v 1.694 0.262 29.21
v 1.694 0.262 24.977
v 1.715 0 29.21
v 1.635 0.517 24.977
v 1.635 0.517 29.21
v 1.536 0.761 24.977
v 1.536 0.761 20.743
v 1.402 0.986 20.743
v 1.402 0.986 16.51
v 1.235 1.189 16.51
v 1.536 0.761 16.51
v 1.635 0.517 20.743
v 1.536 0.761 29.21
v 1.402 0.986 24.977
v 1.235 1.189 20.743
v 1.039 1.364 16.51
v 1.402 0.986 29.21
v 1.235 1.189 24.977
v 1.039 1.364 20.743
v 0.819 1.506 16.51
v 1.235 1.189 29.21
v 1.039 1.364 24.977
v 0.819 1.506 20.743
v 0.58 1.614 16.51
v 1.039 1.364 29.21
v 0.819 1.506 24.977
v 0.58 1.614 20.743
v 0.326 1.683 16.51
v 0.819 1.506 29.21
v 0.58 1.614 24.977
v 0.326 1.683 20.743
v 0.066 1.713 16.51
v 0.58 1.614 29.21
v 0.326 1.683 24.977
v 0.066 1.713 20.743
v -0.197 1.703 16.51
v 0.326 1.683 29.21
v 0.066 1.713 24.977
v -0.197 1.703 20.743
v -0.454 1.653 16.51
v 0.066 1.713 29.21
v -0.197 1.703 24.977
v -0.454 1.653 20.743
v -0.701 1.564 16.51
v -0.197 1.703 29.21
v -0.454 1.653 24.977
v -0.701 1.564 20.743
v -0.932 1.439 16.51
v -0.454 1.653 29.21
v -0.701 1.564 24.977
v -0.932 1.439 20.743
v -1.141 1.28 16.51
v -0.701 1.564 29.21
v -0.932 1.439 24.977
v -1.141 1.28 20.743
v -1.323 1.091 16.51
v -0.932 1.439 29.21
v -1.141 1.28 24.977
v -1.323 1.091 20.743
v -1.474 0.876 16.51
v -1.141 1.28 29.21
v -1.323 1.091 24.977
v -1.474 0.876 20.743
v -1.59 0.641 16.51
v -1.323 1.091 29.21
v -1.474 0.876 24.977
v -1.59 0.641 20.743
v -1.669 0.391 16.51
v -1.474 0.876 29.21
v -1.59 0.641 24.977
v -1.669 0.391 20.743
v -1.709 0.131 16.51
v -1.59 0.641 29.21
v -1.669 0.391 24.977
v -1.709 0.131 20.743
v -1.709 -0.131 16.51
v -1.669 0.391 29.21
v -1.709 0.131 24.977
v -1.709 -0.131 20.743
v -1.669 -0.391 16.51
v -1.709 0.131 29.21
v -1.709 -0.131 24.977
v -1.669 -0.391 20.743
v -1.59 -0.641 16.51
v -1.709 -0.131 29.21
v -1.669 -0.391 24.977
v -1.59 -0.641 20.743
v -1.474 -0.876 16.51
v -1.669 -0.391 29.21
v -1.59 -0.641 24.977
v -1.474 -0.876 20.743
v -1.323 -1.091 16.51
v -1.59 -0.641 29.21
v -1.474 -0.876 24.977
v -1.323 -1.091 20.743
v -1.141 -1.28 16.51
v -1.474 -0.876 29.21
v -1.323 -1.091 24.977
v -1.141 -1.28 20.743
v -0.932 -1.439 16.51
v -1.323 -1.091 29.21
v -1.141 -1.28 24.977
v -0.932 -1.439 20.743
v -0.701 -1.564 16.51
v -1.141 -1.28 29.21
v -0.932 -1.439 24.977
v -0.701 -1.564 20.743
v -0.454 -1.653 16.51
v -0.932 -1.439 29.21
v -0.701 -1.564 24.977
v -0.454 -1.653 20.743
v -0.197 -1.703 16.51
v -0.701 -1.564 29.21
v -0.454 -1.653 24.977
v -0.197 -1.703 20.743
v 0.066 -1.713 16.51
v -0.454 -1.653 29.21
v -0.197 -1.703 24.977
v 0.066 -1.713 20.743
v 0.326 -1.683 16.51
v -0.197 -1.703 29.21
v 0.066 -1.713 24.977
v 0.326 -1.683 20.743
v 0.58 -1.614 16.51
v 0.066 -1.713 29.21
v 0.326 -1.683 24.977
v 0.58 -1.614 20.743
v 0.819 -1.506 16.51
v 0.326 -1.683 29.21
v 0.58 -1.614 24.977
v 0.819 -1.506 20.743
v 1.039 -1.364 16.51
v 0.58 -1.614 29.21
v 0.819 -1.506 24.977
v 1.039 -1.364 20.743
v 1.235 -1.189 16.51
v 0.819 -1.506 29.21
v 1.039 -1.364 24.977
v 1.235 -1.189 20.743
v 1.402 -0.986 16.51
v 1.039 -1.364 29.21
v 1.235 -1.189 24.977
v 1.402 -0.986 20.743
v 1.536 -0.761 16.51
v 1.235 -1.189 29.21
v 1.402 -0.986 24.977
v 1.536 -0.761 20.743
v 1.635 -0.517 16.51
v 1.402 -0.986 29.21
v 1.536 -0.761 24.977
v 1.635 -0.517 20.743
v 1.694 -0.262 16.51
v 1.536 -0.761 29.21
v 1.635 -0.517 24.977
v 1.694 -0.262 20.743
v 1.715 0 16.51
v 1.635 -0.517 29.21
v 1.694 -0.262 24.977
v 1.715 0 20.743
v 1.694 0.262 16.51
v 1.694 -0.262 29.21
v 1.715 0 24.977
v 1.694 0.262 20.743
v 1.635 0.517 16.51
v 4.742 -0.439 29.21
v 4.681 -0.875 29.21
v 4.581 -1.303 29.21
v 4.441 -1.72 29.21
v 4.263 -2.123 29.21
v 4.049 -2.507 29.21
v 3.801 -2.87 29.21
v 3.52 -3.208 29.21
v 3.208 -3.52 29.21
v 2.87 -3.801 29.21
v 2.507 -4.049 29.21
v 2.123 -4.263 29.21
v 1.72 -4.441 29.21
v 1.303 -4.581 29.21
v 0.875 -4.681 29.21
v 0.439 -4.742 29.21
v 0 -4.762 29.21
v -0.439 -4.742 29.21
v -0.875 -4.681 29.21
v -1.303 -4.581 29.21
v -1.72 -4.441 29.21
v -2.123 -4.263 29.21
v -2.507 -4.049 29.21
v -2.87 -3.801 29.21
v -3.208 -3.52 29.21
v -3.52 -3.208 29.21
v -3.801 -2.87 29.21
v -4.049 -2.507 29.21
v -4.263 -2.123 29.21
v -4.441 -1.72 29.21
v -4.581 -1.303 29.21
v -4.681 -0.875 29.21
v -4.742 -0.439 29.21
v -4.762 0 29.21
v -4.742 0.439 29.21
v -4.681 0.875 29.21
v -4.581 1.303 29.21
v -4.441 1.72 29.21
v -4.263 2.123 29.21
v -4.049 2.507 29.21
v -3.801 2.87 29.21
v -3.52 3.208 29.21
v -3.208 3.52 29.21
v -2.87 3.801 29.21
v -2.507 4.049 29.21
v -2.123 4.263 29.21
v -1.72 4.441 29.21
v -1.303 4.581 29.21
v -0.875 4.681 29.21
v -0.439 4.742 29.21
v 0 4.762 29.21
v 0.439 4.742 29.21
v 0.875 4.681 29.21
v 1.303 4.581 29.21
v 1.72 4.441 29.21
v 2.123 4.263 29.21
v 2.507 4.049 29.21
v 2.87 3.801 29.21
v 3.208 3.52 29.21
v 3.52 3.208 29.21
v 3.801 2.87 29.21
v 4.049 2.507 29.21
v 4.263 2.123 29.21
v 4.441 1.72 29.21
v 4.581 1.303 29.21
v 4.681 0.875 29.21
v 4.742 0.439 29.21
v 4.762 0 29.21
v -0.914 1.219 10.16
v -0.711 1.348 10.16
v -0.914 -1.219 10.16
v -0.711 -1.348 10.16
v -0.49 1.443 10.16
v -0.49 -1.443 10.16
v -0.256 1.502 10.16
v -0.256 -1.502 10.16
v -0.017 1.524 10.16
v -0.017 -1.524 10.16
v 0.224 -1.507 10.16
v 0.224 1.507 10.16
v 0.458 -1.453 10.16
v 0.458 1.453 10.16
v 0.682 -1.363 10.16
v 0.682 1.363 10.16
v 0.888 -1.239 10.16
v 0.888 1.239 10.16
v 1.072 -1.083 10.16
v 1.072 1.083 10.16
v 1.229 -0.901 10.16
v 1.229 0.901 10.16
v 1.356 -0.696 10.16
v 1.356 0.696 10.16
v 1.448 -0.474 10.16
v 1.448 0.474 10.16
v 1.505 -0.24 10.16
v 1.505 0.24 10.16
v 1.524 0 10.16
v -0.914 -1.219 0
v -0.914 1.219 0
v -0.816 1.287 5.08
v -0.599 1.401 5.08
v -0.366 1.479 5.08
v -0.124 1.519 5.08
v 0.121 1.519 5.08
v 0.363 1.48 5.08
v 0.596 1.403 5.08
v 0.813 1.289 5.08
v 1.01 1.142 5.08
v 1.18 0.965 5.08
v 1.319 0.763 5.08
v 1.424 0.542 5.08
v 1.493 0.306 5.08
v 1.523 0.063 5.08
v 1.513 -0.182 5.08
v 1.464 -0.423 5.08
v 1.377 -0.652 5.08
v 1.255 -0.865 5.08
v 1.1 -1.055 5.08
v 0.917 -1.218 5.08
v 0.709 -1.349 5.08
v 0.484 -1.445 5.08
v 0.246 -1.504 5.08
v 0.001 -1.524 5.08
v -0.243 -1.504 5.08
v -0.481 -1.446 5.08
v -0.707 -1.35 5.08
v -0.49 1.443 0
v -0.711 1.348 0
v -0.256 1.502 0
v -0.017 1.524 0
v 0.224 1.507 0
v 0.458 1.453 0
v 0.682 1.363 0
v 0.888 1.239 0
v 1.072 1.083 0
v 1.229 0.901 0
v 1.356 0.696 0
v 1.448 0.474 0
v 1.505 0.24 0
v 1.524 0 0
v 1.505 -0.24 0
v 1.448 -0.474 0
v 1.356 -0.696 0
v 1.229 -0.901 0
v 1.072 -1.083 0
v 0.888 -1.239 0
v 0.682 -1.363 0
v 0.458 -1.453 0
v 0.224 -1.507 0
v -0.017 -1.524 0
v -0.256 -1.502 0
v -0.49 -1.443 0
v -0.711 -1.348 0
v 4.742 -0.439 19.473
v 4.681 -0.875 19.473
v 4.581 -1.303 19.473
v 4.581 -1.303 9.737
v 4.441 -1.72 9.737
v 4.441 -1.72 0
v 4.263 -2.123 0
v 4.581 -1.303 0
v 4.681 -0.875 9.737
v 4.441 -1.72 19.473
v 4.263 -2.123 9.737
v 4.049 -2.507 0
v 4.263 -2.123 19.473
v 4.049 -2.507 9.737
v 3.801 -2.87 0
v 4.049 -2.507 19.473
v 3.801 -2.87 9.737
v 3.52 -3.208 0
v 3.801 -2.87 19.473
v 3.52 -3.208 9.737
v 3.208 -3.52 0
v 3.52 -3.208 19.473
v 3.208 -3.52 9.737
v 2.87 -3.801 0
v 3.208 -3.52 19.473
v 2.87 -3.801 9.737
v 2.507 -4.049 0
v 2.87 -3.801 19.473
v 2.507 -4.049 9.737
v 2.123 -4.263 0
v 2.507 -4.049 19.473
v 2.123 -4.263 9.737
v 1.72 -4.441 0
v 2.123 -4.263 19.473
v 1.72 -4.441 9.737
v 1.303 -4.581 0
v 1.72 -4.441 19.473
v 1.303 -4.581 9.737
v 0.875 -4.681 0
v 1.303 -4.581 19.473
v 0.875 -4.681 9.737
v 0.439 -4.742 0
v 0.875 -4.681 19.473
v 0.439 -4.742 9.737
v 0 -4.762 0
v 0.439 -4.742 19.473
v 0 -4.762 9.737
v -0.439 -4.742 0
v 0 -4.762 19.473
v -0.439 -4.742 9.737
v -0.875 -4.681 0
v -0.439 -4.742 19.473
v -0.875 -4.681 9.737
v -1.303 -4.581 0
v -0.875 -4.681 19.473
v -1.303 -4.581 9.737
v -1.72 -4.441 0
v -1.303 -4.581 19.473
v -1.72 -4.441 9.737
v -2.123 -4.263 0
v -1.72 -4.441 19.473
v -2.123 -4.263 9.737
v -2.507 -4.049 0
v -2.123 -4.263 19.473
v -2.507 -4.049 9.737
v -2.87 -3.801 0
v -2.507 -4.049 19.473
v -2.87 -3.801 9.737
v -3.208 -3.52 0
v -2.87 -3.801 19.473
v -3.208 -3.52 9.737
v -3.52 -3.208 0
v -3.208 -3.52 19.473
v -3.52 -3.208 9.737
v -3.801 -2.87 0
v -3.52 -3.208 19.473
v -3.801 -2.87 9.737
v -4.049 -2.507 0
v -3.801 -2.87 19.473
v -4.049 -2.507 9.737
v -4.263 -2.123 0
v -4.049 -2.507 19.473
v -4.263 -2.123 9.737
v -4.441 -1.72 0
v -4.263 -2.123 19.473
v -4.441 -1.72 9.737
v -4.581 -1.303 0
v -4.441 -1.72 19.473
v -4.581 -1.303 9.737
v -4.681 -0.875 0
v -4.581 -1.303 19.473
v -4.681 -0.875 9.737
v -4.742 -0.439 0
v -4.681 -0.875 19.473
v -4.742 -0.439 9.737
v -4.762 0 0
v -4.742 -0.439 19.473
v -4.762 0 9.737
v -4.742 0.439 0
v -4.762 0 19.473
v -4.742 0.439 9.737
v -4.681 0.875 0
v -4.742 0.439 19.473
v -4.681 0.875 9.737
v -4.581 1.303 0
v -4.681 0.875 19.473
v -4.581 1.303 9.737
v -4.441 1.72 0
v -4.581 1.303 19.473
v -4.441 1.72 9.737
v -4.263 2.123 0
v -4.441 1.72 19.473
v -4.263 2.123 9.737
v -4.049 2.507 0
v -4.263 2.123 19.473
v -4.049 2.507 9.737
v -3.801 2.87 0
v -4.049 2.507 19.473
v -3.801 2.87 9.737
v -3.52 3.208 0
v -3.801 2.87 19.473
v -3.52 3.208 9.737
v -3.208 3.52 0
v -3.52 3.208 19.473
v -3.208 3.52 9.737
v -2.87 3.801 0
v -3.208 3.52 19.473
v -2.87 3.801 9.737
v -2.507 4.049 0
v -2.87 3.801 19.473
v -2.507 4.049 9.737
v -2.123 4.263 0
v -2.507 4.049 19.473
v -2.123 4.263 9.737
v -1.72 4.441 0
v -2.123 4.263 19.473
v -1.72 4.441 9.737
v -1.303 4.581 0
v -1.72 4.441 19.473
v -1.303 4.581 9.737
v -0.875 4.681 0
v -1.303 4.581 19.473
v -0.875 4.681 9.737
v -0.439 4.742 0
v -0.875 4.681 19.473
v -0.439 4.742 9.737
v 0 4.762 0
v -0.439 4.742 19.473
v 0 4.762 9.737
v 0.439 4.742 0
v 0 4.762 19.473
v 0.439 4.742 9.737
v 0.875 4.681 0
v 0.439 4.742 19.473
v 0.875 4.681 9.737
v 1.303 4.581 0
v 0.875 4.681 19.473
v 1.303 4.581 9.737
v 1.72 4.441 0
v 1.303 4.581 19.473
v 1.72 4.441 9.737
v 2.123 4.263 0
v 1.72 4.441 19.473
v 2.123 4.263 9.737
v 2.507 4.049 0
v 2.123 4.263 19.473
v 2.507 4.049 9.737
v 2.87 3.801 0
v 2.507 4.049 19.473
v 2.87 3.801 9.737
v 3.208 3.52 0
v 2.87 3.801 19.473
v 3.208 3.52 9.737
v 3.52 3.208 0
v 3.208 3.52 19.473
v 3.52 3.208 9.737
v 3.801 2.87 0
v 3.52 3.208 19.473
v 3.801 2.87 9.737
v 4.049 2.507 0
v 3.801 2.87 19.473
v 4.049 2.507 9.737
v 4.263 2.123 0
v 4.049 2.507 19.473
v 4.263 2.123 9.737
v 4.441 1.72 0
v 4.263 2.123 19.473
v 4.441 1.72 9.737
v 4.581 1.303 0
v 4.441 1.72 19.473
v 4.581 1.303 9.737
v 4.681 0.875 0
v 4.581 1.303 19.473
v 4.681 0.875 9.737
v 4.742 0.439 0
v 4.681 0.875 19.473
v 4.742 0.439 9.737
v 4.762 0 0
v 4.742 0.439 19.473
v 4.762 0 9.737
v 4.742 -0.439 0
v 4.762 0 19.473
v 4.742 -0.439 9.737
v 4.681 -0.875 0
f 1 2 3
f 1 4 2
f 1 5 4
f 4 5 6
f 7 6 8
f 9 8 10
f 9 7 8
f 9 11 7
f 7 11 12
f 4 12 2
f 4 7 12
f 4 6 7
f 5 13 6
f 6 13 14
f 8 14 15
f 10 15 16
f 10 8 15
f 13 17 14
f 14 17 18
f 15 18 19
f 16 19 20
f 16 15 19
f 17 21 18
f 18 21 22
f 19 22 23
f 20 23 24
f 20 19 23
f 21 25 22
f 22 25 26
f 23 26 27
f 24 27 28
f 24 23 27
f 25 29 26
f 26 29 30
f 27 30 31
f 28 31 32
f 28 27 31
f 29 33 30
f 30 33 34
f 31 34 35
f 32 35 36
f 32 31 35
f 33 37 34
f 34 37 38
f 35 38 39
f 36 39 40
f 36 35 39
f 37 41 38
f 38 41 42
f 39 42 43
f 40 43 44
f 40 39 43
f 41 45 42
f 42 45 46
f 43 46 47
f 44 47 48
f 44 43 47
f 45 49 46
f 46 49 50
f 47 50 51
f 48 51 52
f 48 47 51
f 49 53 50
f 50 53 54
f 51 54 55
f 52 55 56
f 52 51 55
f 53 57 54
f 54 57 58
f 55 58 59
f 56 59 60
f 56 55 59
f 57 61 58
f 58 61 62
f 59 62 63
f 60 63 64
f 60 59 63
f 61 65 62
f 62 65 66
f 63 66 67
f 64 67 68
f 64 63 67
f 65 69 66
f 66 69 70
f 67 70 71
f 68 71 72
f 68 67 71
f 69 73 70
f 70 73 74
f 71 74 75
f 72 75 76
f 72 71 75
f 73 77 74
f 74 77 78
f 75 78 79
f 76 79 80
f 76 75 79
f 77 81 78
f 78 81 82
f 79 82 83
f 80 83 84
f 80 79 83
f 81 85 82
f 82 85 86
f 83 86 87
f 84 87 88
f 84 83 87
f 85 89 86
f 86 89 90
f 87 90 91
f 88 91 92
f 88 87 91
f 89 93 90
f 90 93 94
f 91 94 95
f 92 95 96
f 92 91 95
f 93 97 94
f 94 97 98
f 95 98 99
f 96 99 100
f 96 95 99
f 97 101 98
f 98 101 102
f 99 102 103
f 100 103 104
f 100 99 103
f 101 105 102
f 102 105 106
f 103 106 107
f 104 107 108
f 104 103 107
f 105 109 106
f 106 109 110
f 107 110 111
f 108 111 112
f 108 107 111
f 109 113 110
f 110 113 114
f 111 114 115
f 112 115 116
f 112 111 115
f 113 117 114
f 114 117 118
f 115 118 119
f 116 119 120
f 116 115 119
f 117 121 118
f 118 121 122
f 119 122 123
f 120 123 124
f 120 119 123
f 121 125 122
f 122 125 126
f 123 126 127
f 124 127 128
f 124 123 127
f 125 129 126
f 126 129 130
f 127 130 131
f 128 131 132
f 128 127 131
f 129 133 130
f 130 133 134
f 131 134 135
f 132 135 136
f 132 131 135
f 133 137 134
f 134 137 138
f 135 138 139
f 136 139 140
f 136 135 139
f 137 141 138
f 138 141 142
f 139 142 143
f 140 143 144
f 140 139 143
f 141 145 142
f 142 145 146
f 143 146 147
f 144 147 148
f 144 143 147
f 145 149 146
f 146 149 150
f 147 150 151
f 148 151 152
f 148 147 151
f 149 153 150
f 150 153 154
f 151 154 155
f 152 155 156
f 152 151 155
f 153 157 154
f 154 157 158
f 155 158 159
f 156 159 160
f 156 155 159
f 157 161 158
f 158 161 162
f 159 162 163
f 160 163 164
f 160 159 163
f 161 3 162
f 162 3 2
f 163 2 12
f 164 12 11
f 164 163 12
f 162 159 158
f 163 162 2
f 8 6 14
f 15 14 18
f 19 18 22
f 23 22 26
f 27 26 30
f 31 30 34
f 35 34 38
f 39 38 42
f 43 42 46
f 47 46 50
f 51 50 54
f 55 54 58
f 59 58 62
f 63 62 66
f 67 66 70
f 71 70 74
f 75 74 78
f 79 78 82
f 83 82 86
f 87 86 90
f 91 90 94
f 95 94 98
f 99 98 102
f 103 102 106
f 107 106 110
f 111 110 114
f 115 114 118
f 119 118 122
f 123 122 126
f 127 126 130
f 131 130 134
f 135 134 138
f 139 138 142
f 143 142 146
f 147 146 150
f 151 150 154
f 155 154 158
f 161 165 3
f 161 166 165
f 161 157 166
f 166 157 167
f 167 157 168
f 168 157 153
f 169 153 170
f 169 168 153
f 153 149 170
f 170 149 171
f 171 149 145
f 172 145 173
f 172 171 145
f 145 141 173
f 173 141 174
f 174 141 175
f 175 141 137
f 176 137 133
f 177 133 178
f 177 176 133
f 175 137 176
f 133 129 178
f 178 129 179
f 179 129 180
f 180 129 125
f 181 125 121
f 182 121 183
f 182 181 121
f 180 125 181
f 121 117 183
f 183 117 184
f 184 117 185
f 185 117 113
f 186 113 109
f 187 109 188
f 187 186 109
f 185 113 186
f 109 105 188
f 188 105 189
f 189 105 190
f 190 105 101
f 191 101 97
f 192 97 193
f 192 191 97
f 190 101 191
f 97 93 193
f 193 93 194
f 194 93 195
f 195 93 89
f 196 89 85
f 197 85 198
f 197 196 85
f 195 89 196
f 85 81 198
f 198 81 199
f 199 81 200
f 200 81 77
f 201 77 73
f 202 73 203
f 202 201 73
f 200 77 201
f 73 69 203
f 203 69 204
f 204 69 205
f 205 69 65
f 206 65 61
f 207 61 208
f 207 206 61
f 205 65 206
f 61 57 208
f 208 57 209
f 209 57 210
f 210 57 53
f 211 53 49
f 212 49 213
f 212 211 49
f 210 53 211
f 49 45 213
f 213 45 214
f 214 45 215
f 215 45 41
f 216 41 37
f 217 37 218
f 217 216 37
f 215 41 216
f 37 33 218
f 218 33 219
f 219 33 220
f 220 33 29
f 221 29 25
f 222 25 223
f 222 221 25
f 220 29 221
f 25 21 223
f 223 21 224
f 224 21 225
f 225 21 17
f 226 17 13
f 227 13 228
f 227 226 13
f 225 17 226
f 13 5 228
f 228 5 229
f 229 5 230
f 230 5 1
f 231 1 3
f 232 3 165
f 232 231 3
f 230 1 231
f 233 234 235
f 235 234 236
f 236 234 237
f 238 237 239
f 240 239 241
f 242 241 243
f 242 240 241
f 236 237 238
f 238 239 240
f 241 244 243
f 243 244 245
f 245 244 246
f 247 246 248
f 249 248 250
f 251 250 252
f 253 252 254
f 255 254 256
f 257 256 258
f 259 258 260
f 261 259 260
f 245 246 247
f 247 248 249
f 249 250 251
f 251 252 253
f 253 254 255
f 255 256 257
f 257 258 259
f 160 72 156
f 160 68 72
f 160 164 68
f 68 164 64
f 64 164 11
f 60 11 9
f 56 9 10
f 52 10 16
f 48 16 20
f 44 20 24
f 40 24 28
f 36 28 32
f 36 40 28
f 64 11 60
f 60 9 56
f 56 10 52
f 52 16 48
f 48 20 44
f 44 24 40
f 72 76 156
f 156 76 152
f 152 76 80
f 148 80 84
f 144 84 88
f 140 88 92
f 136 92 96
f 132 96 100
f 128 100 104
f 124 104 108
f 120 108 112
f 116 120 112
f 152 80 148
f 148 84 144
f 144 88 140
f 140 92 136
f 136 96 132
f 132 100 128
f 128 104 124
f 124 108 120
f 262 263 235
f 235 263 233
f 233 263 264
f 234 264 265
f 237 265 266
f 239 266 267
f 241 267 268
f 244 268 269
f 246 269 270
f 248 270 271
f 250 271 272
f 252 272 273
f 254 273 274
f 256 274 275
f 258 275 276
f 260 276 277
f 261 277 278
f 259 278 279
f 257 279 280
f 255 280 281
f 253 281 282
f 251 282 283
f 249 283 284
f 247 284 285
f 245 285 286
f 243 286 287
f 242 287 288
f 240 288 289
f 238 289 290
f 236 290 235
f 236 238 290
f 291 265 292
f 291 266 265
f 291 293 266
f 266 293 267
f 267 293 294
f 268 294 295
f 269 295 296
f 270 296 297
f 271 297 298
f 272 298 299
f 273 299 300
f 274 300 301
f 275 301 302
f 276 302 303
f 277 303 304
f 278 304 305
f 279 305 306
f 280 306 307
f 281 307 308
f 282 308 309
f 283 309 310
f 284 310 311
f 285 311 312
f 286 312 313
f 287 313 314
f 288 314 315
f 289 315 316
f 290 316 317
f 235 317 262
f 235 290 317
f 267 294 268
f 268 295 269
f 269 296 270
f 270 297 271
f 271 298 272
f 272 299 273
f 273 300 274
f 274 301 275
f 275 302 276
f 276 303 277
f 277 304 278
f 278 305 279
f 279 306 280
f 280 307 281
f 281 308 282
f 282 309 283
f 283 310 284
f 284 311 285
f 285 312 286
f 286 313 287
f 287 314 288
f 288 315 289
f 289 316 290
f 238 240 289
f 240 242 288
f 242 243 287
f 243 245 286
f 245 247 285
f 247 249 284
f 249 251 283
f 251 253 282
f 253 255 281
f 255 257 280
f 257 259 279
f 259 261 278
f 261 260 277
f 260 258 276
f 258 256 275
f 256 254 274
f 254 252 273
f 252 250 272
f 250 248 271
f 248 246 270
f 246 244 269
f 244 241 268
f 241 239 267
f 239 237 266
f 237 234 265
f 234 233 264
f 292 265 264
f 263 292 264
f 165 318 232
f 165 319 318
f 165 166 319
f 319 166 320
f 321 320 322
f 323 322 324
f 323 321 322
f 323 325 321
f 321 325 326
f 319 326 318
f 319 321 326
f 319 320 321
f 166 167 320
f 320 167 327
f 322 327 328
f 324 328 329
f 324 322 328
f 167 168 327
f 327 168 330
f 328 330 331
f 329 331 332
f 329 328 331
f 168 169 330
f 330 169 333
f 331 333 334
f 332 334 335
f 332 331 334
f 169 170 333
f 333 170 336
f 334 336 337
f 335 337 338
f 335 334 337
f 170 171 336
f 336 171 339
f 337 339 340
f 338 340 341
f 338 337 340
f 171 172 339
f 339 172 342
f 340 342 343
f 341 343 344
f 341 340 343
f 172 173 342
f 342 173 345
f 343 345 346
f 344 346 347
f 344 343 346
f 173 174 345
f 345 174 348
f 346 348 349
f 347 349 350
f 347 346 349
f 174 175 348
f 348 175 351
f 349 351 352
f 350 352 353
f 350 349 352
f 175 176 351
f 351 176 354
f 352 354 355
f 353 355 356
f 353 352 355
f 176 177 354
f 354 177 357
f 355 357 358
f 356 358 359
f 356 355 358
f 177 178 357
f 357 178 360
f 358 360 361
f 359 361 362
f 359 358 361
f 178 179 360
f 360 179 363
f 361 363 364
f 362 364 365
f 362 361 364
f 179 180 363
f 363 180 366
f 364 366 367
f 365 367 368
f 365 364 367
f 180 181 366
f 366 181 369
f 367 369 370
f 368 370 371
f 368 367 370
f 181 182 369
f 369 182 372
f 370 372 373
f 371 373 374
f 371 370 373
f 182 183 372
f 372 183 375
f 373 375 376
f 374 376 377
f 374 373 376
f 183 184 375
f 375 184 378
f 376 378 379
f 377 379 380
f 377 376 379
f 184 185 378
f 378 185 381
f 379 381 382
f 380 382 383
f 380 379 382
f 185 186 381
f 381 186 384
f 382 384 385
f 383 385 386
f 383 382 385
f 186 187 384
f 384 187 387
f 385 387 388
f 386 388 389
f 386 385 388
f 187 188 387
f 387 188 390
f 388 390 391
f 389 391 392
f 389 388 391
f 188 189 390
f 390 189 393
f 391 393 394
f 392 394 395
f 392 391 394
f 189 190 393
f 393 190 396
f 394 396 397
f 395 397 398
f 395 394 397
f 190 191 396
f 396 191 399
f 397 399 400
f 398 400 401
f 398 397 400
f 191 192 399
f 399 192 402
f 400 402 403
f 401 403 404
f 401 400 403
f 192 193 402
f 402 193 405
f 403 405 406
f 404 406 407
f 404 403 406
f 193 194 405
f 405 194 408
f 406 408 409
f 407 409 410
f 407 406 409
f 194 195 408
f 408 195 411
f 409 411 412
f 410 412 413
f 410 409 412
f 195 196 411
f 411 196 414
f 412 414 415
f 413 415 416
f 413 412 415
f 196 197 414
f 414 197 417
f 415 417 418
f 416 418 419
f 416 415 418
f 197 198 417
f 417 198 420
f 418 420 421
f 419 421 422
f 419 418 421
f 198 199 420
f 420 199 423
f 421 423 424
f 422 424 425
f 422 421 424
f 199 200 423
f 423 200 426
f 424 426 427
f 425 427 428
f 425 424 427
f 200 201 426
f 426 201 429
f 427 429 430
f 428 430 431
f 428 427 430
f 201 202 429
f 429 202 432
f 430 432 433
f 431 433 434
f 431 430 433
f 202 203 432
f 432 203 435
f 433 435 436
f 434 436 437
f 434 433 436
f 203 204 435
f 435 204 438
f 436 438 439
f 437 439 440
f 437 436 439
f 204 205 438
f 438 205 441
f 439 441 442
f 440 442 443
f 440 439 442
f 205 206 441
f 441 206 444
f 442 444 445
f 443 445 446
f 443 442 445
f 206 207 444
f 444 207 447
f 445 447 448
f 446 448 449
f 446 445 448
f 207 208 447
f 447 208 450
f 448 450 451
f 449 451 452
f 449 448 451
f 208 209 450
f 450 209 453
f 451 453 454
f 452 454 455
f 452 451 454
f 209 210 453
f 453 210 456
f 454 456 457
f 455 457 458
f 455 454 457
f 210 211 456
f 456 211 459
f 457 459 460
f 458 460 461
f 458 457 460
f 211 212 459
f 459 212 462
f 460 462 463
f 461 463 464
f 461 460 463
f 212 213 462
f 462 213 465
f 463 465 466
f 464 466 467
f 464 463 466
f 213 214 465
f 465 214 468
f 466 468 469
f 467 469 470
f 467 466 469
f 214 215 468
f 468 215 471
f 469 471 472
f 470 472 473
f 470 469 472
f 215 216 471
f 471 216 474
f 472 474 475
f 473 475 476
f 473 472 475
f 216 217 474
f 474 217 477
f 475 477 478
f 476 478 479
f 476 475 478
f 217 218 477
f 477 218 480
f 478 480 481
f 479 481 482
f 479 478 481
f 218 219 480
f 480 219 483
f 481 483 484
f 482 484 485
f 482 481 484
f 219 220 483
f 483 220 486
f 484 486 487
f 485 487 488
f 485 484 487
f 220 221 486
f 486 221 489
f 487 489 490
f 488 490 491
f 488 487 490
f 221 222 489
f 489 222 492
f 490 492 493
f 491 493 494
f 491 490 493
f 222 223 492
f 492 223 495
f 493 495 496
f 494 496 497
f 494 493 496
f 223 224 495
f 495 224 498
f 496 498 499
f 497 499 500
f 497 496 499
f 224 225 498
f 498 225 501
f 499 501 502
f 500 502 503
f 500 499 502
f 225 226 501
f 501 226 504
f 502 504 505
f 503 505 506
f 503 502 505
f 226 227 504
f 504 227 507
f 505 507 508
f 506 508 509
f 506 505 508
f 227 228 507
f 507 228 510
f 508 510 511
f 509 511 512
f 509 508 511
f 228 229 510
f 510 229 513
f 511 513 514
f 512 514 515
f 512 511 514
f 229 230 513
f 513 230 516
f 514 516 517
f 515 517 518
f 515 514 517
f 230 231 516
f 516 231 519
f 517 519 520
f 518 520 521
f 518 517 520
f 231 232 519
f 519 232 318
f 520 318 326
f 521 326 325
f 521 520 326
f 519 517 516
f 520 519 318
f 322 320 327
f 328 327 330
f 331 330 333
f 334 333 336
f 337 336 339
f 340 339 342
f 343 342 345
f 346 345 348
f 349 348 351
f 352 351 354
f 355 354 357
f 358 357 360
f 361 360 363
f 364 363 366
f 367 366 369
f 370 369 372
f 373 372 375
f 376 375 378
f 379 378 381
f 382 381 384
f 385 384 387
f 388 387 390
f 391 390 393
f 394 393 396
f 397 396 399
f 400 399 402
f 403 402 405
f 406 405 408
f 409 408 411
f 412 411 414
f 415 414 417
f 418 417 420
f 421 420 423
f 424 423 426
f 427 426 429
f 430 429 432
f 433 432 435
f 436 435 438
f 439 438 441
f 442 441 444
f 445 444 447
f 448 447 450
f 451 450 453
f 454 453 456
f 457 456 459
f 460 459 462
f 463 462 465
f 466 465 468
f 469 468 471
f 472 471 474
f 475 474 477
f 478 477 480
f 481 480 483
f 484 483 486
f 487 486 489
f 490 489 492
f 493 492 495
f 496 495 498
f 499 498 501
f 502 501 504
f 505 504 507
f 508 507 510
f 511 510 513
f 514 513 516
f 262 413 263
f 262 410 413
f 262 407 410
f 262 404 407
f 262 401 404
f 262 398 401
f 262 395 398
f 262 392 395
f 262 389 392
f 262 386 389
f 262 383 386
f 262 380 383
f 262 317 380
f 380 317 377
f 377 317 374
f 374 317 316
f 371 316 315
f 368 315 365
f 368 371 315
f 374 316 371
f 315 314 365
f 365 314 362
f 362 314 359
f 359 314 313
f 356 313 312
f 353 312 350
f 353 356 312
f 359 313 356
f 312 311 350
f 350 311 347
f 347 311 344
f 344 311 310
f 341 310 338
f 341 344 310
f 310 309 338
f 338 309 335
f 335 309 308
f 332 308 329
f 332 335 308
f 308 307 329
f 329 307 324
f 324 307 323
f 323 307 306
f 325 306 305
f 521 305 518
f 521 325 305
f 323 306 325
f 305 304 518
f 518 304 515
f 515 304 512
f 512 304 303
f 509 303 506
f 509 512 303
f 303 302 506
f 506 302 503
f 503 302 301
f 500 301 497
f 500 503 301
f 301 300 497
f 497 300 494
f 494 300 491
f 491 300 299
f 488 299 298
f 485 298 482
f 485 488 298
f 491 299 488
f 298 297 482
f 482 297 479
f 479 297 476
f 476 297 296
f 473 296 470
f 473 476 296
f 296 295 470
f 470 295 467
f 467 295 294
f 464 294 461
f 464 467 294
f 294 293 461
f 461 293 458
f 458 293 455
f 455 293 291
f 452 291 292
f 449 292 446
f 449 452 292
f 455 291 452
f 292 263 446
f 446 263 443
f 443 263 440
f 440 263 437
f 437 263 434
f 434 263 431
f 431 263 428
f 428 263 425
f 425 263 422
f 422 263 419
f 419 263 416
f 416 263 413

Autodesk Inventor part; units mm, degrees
ref_plane "YZ Plane" through (0, 0, 0) normal (1, 0, 0) x (0, 1, 0)
ref_plane "XZ Plane" through (0, 0, 0) normal (0, 1, 0) x (-1, 0, 0)
ref_plane "XY Plane" through (0, 0, 0) normal (0, 0, 1) x (1, 0, 0)
sketch "Sketch1" plane through (0, 0, 0) normal (0, 0, 1) x (1, 0, 0)
  arc A0 (-0.9144, -1.2192) -> (-0.9144, 1.2192) centre (0, 0) ccw
  line L0 (-0.9144, 1.2192) -> (-0.9144, -1.2192)
  circle A1 centre (0, 0) radius 4.7625
  point P0 (-0.889, 0)
  point P1 (1.524, 0)
  dimension "d0" = 3.048
  dimension "d2" = 2.413
  dimension "d3" = 9.525
extrude "Extrusion1" add sketch "Sketch1" along normal blind 10.16
sketch "Sketch2" plane through (0, 0, 10.16) normal (0, 0, 1) x (1, 0, 0)
  circle A0 centre (0, 0) radius 4.7625 projected
extrude "Extrusion2" add sketch "Sketch2" along normal blind 6.35
sketch "Sketch3" plane through (0, 0, 16.51) normal (0, 0, 1) x (1, 0, 0)
  circle A0 centre (0, 0) radius 4.7625 projected
  circle A1 centre (0, 0) radius 1.7145
  dimension "d8" = 3.429
extrude "Extrusion3" add sketch "Sketch3" along normal blind 12.7
properties part number "Coupling Bushing" material "ABS Plastic"
